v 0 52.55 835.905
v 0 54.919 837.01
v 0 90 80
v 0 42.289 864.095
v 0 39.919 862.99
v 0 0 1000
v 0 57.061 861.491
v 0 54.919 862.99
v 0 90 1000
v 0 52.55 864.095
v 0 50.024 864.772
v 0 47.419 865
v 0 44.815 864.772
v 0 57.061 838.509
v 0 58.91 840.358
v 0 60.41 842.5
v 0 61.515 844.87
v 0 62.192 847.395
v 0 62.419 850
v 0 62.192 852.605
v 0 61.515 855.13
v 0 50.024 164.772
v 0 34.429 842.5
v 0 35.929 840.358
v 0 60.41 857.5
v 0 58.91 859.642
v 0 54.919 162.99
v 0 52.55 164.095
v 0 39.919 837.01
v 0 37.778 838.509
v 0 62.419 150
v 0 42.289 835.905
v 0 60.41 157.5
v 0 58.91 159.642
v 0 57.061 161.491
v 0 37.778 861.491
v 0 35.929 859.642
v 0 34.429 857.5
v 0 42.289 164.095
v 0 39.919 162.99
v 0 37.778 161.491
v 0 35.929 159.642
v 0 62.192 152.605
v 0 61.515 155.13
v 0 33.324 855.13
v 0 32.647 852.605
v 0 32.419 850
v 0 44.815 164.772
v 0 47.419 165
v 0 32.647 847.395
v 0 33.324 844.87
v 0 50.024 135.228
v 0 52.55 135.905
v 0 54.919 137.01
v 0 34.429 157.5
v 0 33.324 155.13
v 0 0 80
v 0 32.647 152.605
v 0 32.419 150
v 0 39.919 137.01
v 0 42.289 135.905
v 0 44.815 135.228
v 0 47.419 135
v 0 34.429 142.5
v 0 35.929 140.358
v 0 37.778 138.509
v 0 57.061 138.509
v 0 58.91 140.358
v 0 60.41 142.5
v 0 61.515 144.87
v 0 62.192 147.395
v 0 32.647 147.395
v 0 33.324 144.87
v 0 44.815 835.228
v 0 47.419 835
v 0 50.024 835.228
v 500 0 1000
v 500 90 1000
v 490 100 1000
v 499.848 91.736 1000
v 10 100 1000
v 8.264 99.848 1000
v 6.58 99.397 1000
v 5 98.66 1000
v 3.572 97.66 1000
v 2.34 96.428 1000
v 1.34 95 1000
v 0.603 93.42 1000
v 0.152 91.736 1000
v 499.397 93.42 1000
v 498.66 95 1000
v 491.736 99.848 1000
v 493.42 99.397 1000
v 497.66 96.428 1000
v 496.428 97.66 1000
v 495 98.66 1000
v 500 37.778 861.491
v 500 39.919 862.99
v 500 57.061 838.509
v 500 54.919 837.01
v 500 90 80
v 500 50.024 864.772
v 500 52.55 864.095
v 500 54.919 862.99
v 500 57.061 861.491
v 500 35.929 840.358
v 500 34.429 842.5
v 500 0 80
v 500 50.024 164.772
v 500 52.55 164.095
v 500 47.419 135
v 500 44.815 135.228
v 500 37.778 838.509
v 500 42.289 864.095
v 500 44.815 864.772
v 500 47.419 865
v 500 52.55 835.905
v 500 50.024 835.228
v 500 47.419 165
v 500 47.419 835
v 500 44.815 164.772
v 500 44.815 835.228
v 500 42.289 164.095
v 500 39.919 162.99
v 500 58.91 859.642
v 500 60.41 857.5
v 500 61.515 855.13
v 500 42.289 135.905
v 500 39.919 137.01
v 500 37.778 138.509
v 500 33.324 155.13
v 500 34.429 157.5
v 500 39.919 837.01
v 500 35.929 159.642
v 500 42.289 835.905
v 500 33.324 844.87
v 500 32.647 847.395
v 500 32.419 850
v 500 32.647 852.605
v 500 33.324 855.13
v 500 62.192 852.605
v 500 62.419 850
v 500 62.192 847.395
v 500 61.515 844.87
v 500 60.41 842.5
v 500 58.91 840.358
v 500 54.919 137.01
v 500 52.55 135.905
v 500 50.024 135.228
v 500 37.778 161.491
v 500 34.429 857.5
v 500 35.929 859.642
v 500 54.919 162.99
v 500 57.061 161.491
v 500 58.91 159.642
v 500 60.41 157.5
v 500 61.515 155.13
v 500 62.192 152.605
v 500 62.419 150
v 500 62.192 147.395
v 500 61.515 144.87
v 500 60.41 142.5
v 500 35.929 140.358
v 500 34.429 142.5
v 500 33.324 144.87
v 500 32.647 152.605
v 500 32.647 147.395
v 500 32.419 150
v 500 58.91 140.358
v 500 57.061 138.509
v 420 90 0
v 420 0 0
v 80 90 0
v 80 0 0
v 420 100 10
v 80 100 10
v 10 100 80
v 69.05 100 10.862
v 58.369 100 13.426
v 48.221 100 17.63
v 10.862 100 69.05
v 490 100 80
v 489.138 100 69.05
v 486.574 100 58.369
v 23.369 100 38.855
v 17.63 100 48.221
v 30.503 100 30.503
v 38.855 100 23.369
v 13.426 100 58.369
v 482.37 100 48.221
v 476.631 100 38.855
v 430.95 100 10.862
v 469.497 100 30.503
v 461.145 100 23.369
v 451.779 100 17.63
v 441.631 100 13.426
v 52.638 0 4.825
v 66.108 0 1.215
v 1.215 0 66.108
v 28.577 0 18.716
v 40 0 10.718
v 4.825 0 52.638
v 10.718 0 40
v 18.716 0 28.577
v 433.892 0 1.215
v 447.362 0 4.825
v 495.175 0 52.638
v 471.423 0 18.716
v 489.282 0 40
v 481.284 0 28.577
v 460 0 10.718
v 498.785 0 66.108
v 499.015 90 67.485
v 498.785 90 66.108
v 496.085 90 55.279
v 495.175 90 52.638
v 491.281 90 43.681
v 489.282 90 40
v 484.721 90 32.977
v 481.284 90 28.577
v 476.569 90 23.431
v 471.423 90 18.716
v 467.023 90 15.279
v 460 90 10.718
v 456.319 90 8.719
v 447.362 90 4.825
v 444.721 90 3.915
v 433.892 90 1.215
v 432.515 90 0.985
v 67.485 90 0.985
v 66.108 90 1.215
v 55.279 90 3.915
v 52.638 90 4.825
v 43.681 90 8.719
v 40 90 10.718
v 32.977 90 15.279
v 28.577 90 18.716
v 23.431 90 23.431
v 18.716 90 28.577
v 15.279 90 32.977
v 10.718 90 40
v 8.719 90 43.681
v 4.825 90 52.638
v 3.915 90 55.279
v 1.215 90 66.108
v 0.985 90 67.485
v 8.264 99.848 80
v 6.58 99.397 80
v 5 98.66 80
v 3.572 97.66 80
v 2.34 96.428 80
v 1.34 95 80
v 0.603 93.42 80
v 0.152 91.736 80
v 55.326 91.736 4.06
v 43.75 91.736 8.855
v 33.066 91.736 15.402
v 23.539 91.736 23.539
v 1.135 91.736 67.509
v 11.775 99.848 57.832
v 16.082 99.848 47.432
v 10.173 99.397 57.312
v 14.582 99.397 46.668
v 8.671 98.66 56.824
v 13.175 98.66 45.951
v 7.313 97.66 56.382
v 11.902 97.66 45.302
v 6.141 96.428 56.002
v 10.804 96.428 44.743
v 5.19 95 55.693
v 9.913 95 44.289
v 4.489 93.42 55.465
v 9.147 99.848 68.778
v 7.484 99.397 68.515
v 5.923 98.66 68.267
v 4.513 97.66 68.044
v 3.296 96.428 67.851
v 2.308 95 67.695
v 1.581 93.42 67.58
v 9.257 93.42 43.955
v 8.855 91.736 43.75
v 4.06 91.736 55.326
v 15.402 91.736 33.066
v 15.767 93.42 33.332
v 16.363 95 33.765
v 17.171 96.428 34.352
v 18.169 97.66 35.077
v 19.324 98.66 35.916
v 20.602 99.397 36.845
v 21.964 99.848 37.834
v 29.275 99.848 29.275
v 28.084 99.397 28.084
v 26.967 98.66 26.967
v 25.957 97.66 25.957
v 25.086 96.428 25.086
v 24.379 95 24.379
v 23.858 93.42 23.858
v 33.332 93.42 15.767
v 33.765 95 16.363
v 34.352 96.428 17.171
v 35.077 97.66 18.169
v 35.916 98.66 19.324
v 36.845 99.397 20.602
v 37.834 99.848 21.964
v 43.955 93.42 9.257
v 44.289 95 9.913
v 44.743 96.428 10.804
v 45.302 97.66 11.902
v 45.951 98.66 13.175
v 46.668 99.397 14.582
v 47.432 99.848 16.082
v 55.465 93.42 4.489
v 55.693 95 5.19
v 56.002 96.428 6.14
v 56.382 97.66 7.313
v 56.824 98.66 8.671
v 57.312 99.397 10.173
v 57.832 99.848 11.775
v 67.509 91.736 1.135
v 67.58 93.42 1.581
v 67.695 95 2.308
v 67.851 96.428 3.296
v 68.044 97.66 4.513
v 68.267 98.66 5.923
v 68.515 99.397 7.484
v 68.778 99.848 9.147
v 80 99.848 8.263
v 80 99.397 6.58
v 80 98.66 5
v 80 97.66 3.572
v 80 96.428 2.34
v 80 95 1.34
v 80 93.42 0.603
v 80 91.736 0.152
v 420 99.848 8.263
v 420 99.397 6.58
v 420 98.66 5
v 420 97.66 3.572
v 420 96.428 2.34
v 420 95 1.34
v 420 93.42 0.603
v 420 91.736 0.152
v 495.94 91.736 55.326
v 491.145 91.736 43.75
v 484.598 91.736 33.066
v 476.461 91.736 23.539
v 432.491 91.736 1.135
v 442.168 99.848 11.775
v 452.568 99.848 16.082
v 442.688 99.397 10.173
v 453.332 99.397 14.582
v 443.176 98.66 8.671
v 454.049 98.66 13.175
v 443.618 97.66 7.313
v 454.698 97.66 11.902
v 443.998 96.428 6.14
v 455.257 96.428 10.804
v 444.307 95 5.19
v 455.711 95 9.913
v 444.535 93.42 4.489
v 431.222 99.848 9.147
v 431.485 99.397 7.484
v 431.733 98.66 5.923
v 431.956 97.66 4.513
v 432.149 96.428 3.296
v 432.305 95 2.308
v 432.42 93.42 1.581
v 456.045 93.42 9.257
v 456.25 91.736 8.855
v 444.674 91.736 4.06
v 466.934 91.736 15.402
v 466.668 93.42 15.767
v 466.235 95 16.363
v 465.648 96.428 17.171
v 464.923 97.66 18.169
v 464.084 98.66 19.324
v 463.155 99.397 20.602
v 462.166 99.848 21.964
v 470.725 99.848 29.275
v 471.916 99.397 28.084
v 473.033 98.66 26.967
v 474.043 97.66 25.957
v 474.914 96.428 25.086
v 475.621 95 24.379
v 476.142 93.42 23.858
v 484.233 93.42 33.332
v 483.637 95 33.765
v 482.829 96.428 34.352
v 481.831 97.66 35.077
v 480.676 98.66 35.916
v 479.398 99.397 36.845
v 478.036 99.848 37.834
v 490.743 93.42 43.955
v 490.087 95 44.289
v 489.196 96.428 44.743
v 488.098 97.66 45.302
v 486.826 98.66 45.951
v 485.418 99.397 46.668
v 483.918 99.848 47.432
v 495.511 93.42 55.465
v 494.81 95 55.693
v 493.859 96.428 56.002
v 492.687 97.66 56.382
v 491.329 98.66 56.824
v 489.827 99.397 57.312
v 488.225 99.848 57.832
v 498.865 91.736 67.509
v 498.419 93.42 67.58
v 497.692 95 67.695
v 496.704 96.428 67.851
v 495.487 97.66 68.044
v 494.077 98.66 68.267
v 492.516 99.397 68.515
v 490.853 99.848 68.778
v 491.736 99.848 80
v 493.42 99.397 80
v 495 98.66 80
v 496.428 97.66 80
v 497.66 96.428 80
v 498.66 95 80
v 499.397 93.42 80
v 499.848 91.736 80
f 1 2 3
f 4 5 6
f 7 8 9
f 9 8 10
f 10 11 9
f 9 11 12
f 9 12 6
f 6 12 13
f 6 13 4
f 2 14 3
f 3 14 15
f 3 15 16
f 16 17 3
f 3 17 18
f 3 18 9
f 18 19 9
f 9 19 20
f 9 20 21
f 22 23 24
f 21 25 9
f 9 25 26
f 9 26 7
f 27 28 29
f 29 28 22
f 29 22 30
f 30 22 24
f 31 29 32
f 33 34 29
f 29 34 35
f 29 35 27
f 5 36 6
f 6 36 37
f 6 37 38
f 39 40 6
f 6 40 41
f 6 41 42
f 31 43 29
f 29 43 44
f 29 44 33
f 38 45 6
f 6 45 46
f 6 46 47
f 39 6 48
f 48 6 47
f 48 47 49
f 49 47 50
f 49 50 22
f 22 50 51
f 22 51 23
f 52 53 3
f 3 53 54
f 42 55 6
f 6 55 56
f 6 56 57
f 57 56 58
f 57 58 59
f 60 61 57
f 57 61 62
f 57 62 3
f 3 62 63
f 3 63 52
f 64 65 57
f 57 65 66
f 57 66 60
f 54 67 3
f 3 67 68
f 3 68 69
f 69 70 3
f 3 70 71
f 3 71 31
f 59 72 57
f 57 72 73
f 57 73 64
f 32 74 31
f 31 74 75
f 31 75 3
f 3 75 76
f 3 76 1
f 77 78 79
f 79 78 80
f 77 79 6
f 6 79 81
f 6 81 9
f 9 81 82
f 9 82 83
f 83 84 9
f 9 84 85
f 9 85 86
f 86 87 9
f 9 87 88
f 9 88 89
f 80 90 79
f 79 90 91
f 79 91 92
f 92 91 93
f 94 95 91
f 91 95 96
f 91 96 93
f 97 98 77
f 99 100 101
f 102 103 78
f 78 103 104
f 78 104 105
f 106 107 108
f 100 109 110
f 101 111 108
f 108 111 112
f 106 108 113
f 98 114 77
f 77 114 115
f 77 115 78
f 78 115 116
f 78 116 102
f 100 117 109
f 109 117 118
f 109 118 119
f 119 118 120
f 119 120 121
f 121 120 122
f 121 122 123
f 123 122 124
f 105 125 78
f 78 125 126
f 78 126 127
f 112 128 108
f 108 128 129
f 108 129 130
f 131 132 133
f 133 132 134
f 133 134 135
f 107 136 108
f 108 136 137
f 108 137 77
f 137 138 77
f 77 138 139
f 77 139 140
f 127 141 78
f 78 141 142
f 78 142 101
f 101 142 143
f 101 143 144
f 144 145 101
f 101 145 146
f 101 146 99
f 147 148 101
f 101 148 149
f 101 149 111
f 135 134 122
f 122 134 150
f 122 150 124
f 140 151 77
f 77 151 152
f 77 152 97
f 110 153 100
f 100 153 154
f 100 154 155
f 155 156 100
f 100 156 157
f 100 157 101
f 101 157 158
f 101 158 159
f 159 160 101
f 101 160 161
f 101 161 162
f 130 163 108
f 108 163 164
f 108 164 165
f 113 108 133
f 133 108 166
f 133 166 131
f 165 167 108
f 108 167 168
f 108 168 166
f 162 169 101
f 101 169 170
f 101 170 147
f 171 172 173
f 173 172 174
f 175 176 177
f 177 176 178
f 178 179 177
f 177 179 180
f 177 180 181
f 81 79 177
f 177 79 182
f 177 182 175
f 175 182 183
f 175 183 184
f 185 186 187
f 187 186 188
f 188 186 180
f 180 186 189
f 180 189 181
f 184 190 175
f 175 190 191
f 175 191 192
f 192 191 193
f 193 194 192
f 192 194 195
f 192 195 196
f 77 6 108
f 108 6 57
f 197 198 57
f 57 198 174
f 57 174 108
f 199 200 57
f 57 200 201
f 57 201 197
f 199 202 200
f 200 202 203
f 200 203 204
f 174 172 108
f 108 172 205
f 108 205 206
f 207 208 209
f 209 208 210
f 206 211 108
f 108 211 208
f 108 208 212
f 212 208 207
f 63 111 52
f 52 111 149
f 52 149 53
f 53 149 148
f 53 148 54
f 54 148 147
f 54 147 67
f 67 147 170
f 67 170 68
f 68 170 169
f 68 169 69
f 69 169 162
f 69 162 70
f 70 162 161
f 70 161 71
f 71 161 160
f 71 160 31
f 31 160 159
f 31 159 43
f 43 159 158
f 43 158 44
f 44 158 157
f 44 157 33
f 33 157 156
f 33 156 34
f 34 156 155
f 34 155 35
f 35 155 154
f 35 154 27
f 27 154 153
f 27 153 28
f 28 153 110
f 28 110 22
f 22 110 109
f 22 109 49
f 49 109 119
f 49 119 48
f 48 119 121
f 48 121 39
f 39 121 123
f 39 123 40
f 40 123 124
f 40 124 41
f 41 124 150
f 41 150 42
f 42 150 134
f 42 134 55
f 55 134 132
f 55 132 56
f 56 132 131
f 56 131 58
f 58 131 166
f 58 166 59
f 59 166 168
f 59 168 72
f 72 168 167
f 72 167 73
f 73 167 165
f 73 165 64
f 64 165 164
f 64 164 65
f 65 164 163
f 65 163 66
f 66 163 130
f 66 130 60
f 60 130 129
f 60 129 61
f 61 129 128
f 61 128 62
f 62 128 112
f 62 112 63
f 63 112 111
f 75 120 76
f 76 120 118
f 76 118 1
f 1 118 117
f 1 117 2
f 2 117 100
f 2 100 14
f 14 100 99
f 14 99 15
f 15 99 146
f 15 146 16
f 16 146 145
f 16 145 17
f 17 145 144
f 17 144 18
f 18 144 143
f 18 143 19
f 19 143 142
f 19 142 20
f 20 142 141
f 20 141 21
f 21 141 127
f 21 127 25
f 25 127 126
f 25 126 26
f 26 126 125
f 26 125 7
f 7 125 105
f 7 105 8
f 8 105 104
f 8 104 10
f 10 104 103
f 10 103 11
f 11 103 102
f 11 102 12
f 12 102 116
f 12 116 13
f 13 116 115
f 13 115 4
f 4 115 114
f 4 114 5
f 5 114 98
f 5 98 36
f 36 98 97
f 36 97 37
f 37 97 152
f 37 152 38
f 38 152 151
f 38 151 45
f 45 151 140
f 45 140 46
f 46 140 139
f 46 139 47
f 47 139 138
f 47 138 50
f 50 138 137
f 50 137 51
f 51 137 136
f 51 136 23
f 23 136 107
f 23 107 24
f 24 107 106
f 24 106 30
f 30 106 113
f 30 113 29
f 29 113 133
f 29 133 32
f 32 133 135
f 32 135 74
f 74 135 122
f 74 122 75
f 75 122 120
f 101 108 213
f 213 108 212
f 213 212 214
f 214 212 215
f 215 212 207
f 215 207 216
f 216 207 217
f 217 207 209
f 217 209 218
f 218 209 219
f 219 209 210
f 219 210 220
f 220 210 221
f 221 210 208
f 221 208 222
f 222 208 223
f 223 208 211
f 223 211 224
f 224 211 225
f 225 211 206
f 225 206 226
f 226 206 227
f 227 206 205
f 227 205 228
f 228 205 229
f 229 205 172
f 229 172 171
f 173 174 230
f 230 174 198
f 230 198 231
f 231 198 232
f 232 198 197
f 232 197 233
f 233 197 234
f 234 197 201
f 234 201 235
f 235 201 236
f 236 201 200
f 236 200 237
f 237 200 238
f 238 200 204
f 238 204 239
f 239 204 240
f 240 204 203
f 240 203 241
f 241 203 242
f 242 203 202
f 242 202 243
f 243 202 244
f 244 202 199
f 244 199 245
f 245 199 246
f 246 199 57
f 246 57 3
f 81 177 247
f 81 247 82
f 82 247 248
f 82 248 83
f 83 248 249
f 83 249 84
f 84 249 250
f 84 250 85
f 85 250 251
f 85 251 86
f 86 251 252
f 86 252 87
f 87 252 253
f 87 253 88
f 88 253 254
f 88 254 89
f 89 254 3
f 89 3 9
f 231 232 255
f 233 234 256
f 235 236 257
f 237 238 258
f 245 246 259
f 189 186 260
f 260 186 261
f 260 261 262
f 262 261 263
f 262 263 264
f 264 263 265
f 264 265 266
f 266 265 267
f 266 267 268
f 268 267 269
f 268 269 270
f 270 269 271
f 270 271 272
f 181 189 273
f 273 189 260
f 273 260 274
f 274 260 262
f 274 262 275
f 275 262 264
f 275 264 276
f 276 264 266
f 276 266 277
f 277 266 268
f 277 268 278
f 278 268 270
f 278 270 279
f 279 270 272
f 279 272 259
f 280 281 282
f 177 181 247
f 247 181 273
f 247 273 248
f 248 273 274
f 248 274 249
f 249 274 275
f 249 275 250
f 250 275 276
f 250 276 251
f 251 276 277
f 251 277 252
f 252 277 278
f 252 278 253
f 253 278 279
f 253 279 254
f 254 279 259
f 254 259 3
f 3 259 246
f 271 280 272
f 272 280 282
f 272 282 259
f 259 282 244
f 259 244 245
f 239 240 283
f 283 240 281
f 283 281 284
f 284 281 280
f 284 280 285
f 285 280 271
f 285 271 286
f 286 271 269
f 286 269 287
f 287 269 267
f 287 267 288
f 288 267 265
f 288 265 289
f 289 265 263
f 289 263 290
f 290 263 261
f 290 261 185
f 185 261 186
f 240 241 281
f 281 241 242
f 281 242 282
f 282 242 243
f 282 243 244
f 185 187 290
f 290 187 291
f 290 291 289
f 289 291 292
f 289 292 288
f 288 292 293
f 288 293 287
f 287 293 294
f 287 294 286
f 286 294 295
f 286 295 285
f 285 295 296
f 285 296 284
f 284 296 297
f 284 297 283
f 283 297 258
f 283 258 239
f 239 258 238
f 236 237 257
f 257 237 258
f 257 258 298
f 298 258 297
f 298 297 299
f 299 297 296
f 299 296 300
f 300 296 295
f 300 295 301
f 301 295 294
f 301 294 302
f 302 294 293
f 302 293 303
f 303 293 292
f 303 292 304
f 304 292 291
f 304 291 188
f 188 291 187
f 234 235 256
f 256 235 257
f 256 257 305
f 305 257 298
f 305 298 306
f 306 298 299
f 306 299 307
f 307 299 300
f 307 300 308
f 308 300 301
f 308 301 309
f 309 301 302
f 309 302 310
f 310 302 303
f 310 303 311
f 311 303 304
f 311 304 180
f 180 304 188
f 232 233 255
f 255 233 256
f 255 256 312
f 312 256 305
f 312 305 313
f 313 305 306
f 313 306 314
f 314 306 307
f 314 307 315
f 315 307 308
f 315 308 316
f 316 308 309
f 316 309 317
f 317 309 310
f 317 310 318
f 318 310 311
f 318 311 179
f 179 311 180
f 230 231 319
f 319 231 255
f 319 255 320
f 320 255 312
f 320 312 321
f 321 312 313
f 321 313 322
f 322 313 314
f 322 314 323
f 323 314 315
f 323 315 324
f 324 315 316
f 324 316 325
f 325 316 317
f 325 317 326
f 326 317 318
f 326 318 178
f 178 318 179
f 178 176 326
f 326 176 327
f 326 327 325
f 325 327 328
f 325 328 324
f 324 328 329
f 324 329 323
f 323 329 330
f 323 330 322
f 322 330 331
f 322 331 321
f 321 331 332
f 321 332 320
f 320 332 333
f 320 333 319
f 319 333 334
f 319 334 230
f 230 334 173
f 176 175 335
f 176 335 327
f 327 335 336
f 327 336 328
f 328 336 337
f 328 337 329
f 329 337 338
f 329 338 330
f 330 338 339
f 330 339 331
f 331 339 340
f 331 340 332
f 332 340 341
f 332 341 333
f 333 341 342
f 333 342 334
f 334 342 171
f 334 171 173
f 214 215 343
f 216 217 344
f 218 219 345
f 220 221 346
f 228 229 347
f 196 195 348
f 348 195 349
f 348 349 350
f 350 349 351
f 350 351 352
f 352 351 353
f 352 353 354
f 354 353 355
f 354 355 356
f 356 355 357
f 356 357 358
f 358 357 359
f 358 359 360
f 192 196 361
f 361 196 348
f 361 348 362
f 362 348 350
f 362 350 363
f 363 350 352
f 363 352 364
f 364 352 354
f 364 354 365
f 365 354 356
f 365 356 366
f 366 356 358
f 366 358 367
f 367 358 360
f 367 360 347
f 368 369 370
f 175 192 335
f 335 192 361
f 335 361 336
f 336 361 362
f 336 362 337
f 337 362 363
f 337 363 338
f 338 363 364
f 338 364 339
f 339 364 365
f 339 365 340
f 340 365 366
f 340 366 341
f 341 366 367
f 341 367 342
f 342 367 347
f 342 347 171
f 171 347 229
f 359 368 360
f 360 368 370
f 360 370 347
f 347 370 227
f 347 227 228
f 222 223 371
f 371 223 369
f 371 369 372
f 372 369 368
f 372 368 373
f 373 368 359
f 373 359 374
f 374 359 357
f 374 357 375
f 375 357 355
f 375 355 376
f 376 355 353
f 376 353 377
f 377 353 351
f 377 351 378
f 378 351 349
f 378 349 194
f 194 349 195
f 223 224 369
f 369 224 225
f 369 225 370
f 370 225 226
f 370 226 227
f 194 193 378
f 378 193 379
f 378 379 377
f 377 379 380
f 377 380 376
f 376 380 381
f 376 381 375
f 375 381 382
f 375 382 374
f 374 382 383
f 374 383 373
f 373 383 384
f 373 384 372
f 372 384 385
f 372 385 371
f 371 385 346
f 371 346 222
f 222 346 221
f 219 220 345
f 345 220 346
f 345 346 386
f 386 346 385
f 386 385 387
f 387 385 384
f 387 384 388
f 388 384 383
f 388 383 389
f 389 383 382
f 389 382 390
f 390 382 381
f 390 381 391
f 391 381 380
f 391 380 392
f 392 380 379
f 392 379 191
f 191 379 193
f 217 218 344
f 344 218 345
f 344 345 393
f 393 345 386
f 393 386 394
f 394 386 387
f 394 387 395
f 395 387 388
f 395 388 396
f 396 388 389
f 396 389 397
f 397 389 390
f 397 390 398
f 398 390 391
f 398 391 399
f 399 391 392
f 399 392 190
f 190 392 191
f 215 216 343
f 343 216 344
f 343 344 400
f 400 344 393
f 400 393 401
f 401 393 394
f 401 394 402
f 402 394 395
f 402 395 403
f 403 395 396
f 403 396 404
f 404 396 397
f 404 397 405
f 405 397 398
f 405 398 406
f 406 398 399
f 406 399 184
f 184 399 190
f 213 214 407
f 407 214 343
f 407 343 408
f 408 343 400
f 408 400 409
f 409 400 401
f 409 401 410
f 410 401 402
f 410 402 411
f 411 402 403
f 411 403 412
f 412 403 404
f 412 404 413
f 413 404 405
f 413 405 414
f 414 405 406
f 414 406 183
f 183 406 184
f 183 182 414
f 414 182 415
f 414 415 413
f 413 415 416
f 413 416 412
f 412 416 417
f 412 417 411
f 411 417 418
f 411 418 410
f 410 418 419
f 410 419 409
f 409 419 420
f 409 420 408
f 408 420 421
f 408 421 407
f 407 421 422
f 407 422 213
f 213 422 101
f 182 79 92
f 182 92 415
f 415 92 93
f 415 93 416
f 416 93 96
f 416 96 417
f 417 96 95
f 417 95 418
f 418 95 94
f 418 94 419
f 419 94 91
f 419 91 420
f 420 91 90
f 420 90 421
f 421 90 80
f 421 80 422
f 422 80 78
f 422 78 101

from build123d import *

# Parameters (mm, degrees)
SKETCH1_W           = 500
SKETCH1_H           = 1000
BOSS_EXTRUDE1_DEPTH = 100
SKETCH2_R           = 15
CUT_EXTRUDE1_DEPTH  = 501
FILLET1_R           = 80
FILLET2_R           = 10


with BuildPart() as part:
    # Sketch1 → Boss-Extrude1 (new body)
    with BuildSketch(Plane(origin=(0, 0, 0), x_dir=(1, 0, 0), z_dir=(0, 1, 0))):
        with Locations((250, -500)):
            Rectangle(SKETCH1_W, SKETCH1_H)
    extrude(amount=BOSS_EXTRUDE1_DEPTH)

    # Sketch2 → Cut-Extrude1 (cut, through all)
    with BuildSketch(Plane(origin=(500, 0, 0), x_dir=(0, 0, -1), z_dir=(1, 0, 0))):
        with Locations((-850, 47.419401297)):
            Circle(SKETCH2_R)
        with Locations((-150, 47.419401297)):
            Circle(SKETCH2_R)
    extrude(amount=-CUT_EXTRUDE1_DEPTH, mode=Mode.SUBTRACT)

    # Fillet1
    fillet1_edges = [part.edges().sort_by_distance(p)[0] for p in [
        (0, 50, 0),
        (500, 50, 0),
    ]]
    fillet(fillet1_edges, radius=FILLET1_R)

    # Fillet2
    fillet2_edges = [part.edges().sort_by_distance(p)[0] for p in [
        (500, 100, 540),
        (250, 100, 0),
        (0, 100, 540),
        (23.431457505, 100, 23.431457505),
        (476.568542495, 100, 23.431457505),
    ]]
    fillet(fillet2_edges, radius=FILLET2_R)


solid = part.part
